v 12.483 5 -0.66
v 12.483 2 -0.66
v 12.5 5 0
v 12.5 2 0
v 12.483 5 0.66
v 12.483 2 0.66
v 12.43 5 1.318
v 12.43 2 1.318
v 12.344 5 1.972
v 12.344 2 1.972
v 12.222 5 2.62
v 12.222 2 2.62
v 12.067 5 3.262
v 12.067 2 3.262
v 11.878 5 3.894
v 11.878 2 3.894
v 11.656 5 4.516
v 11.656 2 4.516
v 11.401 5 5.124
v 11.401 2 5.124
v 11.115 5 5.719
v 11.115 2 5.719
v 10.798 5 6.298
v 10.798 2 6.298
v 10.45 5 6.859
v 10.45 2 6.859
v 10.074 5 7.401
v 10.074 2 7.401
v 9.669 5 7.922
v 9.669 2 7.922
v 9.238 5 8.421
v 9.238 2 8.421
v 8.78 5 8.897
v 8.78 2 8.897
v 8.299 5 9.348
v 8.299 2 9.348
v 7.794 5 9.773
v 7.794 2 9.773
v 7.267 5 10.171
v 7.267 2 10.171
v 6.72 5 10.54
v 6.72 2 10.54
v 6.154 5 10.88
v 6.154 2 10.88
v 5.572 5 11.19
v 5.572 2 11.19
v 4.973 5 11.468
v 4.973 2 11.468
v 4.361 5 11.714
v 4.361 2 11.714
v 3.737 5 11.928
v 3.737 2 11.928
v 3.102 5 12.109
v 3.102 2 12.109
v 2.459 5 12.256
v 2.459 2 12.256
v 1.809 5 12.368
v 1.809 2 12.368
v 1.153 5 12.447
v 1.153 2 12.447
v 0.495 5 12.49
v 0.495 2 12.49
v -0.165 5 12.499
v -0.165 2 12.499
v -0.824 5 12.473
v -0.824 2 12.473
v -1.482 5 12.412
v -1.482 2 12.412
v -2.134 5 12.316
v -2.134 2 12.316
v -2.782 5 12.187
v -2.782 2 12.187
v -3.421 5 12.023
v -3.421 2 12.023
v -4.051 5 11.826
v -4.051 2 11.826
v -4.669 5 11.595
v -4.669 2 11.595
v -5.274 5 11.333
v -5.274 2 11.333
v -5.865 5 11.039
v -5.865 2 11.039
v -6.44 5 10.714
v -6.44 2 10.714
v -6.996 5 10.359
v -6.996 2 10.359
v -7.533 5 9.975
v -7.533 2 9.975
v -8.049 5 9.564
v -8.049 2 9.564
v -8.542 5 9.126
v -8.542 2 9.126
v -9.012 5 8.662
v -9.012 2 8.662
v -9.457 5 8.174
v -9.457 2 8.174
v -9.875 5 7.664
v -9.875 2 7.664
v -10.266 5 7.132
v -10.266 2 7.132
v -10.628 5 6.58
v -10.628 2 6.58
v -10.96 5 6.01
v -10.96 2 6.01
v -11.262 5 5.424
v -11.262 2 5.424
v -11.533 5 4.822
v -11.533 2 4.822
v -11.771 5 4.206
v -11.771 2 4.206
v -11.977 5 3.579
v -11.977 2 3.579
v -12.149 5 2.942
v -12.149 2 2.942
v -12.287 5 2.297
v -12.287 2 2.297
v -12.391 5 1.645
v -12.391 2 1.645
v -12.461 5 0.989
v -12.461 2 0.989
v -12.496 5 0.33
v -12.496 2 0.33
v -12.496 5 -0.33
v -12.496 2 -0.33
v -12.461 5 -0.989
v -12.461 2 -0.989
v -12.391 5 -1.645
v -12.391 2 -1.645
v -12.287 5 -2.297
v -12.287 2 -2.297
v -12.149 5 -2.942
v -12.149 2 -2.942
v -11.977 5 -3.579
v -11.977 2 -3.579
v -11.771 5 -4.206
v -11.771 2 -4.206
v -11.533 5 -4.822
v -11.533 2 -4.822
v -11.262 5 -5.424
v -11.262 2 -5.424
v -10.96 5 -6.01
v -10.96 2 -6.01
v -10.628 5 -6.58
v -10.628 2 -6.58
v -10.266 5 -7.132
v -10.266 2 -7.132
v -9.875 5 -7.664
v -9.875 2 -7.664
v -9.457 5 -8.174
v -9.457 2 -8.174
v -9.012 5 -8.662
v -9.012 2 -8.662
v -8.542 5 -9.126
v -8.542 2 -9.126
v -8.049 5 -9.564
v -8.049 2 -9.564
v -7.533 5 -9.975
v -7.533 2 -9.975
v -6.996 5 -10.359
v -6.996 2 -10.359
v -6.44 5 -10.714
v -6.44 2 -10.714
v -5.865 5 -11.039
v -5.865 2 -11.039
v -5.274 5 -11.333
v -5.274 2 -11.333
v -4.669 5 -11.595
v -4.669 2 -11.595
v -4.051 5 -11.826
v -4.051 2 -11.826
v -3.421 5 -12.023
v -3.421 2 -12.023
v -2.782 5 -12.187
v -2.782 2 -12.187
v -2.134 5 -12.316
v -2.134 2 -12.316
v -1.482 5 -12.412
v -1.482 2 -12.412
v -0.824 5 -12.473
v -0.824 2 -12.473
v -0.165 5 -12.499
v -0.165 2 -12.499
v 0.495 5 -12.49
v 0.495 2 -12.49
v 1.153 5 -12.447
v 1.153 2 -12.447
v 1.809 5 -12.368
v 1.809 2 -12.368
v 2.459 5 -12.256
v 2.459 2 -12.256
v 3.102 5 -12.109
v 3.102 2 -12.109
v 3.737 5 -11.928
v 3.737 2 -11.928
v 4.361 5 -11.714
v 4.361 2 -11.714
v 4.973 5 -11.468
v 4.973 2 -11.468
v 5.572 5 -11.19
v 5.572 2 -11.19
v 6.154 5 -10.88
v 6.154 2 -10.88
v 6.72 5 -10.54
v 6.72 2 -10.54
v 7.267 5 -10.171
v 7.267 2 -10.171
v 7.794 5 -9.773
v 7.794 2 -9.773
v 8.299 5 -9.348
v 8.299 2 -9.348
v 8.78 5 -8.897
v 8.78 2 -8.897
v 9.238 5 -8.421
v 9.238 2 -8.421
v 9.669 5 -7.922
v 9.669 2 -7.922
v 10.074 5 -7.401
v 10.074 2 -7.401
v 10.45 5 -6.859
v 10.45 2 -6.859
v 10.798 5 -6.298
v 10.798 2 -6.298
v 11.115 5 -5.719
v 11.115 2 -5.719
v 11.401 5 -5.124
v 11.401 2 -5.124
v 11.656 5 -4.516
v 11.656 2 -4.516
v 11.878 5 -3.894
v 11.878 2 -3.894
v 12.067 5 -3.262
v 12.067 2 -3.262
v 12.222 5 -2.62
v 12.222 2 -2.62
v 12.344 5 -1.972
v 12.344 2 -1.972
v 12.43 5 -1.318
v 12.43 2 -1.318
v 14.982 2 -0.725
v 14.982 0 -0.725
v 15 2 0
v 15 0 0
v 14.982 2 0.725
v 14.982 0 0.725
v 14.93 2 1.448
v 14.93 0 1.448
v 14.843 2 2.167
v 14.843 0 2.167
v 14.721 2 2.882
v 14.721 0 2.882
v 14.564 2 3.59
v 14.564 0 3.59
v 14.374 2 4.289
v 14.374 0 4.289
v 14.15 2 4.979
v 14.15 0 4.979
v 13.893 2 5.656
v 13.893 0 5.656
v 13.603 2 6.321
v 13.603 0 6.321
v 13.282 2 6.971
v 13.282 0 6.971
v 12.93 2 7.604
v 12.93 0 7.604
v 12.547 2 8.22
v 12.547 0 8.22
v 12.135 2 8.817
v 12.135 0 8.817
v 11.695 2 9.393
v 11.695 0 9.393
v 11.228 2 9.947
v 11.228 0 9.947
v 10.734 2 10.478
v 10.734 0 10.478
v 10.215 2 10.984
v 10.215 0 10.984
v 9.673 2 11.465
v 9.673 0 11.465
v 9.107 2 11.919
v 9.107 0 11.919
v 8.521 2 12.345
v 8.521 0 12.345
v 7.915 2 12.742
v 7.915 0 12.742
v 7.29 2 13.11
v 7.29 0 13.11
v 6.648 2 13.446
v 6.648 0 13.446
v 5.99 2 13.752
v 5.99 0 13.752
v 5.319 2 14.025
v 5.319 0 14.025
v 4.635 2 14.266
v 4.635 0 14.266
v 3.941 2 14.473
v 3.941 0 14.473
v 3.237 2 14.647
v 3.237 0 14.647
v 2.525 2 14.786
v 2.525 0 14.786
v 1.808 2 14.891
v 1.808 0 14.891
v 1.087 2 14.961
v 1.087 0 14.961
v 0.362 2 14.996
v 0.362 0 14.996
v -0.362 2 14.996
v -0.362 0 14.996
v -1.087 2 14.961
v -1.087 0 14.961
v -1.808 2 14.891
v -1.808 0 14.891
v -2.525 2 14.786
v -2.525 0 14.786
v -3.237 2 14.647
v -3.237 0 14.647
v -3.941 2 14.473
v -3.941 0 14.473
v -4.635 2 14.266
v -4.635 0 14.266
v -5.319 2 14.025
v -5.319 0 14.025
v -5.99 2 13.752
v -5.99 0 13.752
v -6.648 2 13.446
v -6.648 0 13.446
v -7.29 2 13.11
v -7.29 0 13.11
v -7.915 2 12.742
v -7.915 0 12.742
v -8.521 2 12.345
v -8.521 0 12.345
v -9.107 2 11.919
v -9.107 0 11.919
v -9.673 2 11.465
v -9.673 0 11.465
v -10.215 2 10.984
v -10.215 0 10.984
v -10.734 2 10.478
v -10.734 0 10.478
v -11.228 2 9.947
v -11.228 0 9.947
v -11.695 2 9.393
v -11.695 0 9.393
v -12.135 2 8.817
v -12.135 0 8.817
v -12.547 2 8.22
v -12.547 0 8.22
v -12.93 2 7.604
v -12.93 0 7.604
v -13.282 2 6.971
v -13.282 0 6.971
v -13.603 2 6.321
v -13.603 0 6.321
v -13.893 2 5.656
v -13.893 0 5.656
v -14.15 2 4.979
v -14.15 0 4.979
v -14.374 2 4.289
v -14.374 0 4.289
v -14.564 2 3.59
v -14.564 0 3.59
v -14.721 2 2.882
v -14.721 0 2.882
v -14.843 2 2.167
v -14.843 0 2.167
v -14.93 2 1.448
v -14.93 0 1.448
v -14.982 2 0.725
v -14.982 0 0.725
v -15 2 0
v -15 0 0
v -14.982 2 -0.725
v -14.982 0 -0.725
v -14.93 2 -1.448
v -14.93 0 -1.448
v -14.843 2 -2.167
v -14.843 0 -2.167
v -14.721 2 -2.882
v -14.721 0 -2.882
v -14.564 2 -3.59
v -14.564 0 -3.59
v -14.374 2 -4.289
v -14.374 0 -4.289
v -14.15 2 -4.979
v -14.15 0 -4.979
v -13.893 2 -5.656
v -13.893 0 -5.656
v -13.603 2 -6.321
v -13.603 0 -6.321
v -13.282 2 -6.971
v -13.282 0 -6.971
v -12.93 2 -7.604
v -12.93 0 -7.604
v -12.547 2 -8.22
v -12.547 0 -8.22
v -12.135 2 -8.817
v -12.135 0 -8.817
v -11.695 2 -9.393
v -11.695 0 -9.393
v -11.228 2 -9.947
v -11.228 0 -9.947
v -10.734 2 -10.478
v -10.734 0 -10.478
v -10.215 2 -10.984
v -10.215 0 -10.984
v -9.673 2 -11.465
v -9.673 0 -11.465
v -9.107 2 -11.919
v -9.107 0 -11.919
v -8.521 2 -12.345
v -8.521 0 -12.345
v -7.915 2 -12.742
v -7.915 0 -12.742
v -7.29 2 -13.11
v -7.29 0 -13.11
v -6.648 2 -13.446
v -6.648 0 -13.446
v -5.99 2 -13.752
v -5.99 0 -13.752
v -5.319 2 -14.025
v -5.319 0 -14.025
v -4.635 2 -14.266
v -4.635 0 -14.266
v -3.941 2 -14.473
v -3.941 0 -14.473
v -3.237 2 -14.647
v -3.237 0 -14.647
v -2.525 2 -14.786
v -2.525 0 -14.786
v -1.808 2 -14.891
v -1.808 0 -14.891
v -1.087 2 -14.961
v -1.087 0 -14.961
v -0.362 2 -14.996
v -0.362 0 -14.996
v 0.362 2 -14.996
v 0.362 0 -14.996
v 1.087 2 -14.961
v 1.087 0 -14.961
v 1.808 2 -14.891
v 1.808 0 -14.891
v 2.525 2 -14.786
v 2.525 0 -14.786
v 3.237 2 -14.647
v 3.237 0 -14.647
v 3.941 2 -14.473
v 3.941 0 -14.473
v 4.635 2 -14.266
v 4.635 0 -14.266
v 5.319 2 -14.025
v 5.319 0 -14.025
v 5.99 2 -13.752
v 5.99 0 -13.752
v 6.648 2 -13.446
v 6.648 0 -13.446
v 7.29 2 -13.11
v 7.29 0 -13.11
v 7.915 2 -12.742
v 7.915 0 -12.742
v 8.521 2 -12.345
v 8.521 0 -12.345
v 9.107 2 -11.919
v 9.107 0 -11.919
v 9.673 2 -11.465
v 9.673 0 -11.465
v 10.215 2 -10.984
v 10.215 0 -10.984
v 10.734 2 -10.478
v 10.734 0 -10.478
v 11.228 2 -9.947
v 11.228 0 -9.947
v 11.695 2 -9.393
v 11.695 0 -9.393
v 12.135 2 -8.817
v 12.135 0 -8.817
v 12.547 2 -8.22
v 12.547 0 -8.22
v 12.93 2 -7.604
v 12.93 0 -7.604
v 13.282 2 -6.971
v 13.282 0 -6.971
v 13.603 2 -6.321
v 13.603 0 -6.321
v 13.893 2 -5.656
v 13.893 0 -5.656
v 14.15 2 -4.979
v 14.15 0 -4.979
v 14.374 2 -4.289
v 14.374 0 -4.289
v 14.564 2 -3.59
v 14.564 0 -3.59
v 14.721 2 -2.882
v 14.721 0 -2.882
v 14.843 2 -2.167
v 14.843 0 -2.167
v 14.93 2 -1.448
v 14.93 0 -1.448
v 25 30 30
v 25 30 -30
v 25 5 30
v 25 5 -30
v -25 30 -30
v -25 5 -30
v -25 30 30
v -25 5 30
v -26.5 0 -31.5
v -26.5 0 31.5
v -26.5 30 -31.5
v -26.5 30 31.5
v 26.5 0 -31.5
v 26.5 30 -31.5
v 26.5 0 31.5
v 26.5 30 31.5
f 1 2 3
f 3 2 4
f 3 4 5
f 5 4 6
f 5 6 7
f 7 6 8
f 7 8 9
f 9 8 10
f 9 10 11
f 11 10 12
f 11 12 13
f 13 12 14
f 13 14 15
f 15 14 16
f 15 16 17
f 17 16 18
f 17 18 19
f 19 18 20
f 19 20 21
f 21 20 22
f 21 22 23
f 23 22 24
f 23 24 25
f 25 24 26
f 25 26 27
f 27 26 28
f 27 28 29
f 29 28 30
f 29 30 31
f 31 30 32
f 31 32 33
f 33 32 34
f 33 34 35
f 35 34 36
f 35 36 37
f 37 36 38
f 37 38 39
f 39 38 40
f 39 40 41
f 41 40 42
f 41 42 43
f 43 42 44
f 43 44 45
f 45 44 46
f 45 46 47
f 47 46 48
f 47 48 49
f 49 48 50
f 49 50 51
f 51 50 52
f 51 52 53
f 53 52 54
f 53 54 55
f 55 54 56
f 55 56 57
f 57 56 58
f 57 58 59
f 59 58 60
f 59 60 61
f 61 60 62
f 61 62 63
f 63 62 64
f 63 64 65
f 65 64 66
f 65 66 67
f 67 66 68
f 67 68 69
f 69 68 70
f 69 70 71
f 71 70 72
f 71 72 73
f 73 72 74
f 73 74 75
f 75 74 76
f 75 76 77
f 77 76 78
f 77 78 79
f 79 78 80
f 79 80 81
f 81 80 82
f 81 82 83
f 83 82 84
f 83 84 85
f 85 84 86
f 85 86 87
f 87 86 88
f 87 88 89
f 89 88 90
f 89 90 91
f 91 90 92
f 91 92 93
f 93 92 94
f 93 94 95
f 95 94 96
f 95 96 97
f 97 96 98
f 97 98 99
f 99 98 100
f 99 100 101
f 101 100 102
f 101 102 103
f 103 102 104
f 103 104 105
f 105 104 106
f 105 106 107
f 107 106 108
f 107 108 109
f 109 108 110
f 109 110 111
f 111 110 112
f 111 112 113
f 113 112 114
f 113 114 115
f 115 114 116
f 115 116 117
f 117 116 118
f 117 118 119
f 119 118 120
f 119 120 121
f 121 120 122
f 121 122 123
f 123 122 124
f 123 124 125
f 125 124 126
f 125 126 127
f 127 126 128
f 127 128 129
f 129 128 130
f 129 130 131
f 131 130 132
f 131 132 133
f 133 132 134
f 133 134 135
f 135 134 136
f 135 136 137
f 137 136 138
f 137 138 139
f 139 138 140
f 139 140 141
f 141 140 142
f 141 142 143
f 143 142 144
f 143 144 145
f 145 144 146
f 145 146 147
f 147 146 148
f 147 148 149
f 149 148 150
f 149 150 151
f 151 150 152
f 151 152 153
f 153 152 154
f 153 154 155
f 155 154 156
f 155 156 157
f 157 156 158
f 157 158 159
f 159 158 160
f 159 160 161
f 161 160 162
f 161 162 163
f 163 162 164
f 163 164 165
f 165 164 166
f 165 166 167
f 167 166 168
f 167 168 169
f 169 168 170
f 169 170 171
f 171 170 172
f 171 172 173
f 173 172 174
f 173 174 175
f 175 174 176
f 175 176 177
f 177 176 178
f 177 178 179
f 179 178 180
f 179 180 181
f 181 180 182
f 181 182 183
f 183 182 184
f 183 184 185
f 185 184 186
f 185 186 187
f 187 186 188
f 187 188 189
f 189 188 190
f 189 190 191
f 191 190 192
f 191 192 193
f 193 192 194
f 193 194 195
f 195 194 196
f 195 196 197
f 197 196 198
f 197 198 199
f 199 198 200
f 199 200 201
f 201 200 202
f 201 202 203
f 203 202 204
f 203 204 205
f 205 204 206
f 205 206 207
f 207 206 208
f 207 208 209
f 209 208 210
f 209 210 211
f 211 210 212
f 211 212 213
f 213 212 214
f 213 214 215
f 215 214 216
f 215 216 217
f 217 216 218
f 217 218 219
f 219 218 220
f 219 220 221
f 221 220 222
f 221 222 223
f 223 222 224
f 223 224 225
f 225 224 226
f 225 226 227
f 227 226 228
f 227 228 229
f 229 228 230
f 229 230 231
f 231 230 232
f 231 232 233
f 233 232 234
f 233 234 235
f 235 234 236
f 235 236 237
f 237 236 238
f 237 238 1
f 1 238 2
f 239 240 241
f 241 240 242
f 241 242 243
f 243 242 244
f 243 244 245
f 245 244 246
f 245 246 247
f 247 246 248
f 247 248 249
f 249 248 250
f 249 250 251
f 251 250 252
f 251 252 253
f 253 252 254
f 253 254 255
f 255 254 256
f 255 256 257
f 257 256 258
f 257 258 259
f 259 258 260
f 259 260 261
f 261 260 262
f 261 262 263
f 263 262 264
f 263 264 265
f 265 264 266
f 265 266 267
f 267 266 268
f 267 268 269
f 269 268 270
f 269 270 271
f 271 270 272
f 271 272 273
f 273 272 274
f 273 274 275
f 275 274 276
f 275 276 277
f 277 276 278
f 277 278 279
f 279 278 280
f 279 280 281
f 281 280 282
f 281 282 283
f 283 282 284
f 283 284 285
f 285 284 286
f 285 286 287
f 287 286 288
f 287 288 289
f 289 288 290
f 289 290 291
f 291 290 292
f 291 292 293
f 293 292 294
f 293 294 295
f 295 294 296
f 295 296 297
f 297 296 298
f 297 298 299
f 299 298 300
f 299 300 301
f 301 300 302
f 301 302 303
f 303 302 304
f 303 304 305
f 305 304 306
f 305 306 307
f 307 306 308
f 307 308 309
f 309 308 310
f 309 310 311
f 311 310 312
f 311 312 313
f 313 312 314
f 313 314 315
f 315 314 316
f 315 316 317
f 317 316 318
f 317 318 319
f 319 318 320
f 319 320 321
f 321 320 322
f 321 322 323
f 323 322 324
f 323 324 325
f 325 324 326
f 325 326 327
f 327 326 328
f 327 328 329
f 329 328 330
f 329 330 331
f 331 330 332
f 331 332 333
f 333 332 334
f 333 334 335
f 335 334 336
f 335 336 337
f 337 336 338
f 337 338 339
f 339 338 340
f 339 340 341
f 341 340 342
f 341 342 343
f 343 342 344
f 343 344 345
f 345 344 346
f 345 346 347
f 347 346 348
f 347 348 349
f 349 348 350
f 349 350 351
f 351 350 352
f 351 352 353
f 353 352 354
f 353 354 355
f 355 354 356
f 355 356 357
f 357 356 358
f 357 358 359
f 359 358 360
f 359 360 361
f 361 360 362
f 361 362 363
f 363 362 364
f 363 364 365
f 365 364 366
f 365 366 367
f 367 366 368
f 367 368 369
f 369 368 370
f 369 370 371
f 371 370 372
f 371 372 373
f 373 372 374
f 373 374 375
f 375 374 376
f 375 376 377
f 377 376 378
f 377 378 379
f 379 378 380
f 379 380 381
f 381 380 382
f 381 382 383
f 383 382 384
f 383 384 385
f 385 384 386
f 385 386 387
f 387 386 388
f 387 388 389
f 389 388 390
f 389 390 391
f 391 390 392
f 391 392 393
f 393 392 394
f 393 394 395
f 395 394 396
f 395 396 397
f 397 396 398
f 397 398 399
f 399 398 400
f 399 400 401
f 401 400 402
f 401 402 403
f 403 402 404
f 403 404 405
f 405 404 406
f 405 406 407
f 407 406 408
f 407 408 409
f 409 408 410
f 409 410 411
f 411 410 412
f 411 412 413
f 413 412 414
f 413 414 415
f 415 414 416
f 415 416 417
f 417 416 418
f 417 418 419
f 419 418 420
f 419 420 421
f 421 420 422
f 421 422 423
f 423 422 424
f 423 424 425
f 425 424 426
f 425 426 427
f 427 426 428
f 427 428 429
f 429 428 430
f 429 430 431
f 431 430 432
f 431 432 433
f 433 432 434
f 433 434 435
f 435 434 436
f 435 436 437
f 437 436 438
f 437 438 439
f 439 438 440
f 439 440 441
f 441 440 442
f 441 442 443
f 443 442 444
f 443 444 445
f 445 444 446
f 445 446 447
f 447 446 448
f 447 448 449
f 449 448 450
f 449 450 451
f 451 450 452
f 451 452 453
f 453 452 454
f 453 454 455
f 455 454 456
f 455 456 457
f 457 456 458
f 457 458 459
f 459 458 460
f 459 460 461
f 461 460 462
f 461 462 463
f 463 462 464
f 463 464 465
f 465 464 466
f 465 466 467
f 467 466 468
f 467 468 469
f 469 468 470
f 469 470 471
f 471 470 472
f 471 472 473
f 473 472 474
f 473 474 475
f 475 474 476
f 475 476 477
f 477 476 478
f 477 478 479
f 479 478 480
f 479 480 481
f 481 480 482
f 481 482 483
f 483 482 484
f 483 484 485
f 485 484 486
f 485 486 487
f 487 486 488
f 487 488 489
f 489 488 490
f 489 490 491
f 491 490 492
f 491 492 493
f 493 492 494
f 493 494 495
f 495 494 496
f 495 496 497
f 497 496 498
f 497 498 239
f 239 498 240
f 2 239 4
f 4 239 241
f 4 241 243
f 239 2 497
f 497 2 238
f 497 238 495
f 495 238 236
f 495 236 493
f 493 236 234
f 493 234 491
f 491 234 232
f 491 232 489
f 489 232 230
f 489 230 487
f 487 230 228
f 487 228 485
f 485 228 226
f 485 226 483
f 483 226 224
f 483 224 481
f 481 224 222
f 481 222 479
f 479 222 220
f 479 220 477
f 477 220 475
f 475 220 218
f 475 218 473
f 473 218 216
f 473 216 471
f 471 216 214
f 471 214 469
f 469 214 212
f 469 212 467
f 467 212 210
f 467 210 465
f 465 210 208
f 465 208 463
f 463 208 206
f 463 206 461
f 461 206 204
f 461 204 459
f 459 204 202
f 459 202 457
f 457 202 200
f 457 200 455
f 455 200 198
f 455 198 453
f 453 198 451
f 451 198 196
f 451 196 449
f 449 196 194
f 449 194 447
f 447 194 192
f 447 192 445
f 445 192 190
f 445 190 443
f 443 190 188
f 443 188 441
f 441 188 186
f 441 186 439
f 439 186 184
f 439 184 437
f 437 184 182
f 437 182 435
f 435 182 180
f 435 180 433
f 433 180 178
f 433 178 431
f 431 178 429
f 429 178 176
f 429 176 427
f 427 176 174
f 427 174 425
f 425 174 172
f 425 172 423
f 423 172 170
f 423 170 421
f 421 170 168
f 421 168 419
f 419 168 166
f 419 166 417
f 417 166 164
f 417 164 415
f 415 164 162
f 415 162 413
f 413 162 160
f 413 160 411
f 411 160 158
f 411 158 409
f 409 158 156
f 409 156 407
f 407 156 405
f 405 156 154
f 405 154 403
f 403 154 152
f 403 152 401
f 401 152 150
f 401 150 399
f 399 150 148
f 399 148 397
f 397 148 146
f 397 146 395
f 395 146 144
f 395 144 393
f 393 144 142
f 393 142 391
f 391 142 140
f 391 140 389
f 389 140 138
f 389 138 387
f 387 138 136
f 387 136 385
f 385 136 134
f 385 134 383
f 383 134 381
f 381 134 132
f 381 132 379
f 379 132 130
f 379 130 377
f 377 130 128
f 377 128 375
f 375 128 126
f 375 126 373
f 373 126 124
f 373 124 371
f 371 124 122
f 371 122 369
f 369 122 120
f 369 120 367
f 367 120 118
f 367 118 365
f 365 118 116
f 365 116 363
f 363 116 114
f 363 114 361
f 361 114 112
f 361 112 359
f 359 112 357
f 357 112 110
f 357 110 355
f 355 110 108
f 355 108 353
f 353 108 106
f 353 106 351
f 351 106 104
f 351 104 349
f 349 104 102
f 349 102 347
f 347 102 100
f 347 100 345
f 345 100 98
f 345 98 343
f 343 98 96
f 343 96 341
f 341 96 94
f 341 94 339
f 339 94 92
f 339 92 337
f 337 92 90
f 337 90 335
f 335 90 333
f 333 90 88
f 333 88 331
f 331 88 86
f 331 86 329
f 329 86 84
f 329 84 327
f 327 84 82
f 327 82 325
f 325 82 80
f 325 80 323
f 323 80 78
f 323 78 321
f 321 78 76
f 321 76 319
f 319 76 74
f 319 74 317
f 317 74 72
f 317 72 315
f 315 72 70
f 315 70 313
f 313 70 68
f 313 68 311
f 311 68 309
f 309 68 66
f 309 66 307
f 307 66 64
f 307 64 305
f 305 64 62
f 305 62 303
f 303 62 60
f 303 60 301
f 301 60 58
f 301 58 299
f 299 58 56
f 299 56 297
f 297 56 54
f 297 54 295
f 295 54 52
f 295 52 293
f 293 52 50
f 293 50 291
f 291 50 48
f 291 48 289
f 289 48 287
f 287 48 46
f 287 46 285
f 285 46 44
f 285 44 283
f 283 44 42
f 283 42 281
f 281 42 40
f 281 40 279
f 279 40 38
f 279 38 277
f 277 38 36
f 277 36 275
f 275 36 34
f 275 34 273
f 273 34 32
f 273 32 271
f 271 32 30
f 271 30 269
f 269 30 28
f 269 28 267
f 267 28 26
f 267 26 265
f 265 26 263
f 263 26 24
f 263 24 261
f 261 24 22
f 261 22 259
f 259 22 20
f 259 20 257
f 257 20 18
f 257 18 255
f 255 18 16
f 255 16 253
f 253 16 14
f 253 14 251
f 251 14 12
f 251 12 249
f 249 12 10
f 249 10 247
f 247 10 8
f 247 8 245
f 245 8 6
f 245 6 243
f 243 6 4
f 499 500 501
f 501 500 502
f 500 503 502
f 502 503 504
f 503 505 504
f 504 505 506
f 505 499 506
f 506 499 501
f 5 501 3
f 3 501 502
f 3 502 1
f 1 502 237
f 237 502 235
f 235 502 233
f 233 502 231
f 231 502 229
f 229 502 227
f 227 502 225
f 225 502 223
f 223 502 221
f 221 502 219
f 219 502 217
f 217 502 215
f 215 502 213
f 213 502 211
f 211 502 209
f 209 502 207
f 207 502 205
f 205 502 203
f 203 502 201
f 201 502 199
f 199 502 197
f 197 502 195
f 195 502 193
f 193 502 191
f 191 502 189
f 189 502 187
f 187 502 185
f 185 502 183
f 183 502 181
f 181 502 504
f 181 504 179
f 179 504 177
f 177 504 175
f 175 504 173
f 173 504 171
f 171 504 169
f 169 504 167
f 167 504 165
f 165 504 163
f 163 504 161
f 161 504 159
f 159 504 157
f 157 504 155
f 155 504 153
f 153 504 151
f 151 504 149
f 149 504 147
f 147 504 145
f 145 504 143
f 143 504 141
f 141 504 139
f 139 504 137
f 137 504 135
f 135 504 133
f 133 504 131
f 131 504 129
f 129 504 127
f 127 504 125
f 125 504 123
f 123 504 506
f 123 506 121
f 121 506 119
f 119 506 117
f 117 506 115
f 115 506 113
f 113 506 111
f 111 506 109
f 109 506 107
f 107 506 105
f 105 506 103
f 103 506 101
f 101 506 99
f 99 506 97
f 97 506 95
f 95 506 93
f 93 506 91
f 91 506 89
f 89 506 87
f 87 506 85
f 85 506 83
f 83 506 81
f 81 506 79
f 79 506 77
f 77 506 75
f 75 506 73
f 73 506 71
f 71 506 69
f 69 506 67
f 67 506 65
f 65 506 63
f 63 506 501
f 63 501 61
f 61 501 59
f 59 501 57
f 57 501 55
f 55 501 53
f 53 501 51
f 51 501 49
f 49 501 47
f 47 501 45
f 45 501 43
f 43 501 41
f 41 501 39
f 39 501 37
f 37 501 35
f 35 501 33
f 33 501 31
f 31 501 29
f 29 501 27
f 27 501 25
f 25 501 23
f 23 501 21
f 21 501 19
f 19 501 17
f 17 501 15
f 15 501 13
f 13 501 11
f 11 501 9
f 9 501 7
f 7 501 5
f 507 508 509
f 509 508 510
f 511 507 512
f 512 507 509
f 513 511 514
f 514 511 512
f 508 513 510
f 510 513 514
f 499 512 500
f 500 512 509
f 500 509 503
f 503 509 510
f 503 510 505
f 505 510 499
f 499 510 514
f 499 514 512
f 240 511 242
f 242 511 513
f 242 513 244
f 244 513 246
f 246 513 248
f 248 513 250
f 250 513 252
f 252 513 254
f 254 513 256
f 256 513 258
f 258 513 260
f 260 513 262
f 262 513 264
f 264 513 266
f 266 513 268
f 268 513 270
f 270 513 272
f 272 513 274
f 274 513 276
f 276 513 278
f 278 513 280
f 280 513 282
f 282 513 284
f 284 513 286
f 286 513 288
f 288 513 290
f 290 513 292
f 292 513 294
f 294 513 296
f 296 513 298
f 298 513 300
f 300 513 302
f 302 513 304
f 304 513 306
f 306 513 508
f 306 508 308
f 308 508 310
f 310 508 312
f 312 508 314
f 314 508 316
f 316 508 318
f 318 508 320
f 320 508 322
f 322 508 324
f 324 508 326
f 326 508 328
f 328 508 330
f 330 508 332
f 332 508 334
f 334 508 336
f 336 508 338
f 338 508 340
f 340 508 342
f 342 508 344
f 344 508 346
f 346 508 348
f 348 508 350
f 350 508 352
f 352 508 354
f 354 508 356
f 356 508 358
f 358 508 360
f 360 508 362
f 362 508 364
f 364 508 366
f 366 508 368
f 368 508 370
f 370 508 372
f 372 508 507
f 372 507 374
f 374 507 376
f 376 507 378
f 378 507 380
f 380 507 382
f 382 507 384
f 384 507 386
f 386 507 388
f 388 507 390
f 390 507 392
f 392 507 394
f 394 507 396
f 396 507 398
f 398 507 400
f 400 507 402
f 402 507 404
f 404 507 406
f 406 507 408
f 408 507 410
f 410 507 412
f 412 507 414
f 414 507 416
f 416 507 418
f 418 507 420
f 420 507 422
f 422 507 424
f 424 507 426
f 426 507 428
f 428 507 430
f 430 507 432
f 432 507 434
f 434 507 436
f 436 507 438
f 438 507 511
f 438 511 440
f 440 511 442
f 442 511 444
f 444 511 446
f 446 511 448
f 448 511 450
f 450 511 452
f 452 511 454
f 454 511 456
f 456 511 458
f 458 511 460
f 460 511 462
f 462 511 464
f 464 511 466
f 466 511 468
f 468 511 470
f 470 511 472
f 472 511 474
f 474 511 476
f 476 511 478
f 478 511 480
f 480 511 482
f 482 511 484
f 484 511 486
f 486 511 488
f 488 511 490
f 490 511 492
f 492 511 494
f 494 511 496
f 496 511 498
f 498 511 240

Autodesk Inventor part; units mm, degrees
ref_plane "YZ Plane" through (0, 0, 0) normal (1, 0, 0) x (0, 1, 0)
ref_plane "XZ Plane" through (0, 0, 0) normal (0, 1, 0) x (-1, 0, 0)
ref_plane "XY Plane" through (0, 0, 0) normal (0, 0, 1) x (1, 0, 0)
sketch "Sketch1" plane through (0, 0, 0) normal (0, 1, 0) x (-1, 0, 0)
  line L0 (26.5, 31.5) -> (-26.5, 31.5)
  line L1 (-26.5, 31.5) -> (-26.5, -31.5)
  line L2 (-26.5, -31.5) -> (26.5, -31.5)
  line L3 (26.5, -31.5) -> (26.5, 31.5)
  line L4 (26.5, 31.5) -> (-26.5, -31.5) construction
  line L5 (-26.5, 31.5) -> (26.5, -31.5) construction
  point P0 (0, 0)
  dimension "d0" = 53
  dimension "d1" = 63
extrude "Extrusion1" add sketch "Sketch1" along normal blind 30
sketch "Sketch2" plane through (0, 30, 0) normal (0, 1, 0) x (1, 0, 0)
  line L0 (-25, -30) -> (25, -30)
  line L1 (25, -30) -> (25, 30)
  line L2 (25, 30) -> (-25, 30)
  line L3 (-25, 30) -> (-25, -30)
  line L4 (-25, -30) -> (25, 30) construction
  line L5 (25, -30) -> (-25, 30) construction
  point P0 (0, 0)
  dimension "d4" = 50
  dimension "d5" = 60
extrude "Extrusion2" cut sketch "Sketch2" against normal blind 25
sketch "Sketch3" plane through (0, 0, 0) normal (0, -1, 0) x (1, 0, 0)
  line L0 (26.5, -31.5) -> (-26.5, -31.5) projected
  circle A0 centre (0, 0) radius 15
  dimension "d10" = 30
extrude "Extrusion3" cut sketch "Sketch3" against normal blind 2
sketch "Sketch4" plane through (0, 2, 0) normal (0, -1, 0) x (1, 0, 0)
  circle A0 centre (0, 0) radius 12.5
  dimension "d13" = 25
extrude "Extrusion4" cut sketch "Sketch4" against normal up to next
properties part number "cover"
